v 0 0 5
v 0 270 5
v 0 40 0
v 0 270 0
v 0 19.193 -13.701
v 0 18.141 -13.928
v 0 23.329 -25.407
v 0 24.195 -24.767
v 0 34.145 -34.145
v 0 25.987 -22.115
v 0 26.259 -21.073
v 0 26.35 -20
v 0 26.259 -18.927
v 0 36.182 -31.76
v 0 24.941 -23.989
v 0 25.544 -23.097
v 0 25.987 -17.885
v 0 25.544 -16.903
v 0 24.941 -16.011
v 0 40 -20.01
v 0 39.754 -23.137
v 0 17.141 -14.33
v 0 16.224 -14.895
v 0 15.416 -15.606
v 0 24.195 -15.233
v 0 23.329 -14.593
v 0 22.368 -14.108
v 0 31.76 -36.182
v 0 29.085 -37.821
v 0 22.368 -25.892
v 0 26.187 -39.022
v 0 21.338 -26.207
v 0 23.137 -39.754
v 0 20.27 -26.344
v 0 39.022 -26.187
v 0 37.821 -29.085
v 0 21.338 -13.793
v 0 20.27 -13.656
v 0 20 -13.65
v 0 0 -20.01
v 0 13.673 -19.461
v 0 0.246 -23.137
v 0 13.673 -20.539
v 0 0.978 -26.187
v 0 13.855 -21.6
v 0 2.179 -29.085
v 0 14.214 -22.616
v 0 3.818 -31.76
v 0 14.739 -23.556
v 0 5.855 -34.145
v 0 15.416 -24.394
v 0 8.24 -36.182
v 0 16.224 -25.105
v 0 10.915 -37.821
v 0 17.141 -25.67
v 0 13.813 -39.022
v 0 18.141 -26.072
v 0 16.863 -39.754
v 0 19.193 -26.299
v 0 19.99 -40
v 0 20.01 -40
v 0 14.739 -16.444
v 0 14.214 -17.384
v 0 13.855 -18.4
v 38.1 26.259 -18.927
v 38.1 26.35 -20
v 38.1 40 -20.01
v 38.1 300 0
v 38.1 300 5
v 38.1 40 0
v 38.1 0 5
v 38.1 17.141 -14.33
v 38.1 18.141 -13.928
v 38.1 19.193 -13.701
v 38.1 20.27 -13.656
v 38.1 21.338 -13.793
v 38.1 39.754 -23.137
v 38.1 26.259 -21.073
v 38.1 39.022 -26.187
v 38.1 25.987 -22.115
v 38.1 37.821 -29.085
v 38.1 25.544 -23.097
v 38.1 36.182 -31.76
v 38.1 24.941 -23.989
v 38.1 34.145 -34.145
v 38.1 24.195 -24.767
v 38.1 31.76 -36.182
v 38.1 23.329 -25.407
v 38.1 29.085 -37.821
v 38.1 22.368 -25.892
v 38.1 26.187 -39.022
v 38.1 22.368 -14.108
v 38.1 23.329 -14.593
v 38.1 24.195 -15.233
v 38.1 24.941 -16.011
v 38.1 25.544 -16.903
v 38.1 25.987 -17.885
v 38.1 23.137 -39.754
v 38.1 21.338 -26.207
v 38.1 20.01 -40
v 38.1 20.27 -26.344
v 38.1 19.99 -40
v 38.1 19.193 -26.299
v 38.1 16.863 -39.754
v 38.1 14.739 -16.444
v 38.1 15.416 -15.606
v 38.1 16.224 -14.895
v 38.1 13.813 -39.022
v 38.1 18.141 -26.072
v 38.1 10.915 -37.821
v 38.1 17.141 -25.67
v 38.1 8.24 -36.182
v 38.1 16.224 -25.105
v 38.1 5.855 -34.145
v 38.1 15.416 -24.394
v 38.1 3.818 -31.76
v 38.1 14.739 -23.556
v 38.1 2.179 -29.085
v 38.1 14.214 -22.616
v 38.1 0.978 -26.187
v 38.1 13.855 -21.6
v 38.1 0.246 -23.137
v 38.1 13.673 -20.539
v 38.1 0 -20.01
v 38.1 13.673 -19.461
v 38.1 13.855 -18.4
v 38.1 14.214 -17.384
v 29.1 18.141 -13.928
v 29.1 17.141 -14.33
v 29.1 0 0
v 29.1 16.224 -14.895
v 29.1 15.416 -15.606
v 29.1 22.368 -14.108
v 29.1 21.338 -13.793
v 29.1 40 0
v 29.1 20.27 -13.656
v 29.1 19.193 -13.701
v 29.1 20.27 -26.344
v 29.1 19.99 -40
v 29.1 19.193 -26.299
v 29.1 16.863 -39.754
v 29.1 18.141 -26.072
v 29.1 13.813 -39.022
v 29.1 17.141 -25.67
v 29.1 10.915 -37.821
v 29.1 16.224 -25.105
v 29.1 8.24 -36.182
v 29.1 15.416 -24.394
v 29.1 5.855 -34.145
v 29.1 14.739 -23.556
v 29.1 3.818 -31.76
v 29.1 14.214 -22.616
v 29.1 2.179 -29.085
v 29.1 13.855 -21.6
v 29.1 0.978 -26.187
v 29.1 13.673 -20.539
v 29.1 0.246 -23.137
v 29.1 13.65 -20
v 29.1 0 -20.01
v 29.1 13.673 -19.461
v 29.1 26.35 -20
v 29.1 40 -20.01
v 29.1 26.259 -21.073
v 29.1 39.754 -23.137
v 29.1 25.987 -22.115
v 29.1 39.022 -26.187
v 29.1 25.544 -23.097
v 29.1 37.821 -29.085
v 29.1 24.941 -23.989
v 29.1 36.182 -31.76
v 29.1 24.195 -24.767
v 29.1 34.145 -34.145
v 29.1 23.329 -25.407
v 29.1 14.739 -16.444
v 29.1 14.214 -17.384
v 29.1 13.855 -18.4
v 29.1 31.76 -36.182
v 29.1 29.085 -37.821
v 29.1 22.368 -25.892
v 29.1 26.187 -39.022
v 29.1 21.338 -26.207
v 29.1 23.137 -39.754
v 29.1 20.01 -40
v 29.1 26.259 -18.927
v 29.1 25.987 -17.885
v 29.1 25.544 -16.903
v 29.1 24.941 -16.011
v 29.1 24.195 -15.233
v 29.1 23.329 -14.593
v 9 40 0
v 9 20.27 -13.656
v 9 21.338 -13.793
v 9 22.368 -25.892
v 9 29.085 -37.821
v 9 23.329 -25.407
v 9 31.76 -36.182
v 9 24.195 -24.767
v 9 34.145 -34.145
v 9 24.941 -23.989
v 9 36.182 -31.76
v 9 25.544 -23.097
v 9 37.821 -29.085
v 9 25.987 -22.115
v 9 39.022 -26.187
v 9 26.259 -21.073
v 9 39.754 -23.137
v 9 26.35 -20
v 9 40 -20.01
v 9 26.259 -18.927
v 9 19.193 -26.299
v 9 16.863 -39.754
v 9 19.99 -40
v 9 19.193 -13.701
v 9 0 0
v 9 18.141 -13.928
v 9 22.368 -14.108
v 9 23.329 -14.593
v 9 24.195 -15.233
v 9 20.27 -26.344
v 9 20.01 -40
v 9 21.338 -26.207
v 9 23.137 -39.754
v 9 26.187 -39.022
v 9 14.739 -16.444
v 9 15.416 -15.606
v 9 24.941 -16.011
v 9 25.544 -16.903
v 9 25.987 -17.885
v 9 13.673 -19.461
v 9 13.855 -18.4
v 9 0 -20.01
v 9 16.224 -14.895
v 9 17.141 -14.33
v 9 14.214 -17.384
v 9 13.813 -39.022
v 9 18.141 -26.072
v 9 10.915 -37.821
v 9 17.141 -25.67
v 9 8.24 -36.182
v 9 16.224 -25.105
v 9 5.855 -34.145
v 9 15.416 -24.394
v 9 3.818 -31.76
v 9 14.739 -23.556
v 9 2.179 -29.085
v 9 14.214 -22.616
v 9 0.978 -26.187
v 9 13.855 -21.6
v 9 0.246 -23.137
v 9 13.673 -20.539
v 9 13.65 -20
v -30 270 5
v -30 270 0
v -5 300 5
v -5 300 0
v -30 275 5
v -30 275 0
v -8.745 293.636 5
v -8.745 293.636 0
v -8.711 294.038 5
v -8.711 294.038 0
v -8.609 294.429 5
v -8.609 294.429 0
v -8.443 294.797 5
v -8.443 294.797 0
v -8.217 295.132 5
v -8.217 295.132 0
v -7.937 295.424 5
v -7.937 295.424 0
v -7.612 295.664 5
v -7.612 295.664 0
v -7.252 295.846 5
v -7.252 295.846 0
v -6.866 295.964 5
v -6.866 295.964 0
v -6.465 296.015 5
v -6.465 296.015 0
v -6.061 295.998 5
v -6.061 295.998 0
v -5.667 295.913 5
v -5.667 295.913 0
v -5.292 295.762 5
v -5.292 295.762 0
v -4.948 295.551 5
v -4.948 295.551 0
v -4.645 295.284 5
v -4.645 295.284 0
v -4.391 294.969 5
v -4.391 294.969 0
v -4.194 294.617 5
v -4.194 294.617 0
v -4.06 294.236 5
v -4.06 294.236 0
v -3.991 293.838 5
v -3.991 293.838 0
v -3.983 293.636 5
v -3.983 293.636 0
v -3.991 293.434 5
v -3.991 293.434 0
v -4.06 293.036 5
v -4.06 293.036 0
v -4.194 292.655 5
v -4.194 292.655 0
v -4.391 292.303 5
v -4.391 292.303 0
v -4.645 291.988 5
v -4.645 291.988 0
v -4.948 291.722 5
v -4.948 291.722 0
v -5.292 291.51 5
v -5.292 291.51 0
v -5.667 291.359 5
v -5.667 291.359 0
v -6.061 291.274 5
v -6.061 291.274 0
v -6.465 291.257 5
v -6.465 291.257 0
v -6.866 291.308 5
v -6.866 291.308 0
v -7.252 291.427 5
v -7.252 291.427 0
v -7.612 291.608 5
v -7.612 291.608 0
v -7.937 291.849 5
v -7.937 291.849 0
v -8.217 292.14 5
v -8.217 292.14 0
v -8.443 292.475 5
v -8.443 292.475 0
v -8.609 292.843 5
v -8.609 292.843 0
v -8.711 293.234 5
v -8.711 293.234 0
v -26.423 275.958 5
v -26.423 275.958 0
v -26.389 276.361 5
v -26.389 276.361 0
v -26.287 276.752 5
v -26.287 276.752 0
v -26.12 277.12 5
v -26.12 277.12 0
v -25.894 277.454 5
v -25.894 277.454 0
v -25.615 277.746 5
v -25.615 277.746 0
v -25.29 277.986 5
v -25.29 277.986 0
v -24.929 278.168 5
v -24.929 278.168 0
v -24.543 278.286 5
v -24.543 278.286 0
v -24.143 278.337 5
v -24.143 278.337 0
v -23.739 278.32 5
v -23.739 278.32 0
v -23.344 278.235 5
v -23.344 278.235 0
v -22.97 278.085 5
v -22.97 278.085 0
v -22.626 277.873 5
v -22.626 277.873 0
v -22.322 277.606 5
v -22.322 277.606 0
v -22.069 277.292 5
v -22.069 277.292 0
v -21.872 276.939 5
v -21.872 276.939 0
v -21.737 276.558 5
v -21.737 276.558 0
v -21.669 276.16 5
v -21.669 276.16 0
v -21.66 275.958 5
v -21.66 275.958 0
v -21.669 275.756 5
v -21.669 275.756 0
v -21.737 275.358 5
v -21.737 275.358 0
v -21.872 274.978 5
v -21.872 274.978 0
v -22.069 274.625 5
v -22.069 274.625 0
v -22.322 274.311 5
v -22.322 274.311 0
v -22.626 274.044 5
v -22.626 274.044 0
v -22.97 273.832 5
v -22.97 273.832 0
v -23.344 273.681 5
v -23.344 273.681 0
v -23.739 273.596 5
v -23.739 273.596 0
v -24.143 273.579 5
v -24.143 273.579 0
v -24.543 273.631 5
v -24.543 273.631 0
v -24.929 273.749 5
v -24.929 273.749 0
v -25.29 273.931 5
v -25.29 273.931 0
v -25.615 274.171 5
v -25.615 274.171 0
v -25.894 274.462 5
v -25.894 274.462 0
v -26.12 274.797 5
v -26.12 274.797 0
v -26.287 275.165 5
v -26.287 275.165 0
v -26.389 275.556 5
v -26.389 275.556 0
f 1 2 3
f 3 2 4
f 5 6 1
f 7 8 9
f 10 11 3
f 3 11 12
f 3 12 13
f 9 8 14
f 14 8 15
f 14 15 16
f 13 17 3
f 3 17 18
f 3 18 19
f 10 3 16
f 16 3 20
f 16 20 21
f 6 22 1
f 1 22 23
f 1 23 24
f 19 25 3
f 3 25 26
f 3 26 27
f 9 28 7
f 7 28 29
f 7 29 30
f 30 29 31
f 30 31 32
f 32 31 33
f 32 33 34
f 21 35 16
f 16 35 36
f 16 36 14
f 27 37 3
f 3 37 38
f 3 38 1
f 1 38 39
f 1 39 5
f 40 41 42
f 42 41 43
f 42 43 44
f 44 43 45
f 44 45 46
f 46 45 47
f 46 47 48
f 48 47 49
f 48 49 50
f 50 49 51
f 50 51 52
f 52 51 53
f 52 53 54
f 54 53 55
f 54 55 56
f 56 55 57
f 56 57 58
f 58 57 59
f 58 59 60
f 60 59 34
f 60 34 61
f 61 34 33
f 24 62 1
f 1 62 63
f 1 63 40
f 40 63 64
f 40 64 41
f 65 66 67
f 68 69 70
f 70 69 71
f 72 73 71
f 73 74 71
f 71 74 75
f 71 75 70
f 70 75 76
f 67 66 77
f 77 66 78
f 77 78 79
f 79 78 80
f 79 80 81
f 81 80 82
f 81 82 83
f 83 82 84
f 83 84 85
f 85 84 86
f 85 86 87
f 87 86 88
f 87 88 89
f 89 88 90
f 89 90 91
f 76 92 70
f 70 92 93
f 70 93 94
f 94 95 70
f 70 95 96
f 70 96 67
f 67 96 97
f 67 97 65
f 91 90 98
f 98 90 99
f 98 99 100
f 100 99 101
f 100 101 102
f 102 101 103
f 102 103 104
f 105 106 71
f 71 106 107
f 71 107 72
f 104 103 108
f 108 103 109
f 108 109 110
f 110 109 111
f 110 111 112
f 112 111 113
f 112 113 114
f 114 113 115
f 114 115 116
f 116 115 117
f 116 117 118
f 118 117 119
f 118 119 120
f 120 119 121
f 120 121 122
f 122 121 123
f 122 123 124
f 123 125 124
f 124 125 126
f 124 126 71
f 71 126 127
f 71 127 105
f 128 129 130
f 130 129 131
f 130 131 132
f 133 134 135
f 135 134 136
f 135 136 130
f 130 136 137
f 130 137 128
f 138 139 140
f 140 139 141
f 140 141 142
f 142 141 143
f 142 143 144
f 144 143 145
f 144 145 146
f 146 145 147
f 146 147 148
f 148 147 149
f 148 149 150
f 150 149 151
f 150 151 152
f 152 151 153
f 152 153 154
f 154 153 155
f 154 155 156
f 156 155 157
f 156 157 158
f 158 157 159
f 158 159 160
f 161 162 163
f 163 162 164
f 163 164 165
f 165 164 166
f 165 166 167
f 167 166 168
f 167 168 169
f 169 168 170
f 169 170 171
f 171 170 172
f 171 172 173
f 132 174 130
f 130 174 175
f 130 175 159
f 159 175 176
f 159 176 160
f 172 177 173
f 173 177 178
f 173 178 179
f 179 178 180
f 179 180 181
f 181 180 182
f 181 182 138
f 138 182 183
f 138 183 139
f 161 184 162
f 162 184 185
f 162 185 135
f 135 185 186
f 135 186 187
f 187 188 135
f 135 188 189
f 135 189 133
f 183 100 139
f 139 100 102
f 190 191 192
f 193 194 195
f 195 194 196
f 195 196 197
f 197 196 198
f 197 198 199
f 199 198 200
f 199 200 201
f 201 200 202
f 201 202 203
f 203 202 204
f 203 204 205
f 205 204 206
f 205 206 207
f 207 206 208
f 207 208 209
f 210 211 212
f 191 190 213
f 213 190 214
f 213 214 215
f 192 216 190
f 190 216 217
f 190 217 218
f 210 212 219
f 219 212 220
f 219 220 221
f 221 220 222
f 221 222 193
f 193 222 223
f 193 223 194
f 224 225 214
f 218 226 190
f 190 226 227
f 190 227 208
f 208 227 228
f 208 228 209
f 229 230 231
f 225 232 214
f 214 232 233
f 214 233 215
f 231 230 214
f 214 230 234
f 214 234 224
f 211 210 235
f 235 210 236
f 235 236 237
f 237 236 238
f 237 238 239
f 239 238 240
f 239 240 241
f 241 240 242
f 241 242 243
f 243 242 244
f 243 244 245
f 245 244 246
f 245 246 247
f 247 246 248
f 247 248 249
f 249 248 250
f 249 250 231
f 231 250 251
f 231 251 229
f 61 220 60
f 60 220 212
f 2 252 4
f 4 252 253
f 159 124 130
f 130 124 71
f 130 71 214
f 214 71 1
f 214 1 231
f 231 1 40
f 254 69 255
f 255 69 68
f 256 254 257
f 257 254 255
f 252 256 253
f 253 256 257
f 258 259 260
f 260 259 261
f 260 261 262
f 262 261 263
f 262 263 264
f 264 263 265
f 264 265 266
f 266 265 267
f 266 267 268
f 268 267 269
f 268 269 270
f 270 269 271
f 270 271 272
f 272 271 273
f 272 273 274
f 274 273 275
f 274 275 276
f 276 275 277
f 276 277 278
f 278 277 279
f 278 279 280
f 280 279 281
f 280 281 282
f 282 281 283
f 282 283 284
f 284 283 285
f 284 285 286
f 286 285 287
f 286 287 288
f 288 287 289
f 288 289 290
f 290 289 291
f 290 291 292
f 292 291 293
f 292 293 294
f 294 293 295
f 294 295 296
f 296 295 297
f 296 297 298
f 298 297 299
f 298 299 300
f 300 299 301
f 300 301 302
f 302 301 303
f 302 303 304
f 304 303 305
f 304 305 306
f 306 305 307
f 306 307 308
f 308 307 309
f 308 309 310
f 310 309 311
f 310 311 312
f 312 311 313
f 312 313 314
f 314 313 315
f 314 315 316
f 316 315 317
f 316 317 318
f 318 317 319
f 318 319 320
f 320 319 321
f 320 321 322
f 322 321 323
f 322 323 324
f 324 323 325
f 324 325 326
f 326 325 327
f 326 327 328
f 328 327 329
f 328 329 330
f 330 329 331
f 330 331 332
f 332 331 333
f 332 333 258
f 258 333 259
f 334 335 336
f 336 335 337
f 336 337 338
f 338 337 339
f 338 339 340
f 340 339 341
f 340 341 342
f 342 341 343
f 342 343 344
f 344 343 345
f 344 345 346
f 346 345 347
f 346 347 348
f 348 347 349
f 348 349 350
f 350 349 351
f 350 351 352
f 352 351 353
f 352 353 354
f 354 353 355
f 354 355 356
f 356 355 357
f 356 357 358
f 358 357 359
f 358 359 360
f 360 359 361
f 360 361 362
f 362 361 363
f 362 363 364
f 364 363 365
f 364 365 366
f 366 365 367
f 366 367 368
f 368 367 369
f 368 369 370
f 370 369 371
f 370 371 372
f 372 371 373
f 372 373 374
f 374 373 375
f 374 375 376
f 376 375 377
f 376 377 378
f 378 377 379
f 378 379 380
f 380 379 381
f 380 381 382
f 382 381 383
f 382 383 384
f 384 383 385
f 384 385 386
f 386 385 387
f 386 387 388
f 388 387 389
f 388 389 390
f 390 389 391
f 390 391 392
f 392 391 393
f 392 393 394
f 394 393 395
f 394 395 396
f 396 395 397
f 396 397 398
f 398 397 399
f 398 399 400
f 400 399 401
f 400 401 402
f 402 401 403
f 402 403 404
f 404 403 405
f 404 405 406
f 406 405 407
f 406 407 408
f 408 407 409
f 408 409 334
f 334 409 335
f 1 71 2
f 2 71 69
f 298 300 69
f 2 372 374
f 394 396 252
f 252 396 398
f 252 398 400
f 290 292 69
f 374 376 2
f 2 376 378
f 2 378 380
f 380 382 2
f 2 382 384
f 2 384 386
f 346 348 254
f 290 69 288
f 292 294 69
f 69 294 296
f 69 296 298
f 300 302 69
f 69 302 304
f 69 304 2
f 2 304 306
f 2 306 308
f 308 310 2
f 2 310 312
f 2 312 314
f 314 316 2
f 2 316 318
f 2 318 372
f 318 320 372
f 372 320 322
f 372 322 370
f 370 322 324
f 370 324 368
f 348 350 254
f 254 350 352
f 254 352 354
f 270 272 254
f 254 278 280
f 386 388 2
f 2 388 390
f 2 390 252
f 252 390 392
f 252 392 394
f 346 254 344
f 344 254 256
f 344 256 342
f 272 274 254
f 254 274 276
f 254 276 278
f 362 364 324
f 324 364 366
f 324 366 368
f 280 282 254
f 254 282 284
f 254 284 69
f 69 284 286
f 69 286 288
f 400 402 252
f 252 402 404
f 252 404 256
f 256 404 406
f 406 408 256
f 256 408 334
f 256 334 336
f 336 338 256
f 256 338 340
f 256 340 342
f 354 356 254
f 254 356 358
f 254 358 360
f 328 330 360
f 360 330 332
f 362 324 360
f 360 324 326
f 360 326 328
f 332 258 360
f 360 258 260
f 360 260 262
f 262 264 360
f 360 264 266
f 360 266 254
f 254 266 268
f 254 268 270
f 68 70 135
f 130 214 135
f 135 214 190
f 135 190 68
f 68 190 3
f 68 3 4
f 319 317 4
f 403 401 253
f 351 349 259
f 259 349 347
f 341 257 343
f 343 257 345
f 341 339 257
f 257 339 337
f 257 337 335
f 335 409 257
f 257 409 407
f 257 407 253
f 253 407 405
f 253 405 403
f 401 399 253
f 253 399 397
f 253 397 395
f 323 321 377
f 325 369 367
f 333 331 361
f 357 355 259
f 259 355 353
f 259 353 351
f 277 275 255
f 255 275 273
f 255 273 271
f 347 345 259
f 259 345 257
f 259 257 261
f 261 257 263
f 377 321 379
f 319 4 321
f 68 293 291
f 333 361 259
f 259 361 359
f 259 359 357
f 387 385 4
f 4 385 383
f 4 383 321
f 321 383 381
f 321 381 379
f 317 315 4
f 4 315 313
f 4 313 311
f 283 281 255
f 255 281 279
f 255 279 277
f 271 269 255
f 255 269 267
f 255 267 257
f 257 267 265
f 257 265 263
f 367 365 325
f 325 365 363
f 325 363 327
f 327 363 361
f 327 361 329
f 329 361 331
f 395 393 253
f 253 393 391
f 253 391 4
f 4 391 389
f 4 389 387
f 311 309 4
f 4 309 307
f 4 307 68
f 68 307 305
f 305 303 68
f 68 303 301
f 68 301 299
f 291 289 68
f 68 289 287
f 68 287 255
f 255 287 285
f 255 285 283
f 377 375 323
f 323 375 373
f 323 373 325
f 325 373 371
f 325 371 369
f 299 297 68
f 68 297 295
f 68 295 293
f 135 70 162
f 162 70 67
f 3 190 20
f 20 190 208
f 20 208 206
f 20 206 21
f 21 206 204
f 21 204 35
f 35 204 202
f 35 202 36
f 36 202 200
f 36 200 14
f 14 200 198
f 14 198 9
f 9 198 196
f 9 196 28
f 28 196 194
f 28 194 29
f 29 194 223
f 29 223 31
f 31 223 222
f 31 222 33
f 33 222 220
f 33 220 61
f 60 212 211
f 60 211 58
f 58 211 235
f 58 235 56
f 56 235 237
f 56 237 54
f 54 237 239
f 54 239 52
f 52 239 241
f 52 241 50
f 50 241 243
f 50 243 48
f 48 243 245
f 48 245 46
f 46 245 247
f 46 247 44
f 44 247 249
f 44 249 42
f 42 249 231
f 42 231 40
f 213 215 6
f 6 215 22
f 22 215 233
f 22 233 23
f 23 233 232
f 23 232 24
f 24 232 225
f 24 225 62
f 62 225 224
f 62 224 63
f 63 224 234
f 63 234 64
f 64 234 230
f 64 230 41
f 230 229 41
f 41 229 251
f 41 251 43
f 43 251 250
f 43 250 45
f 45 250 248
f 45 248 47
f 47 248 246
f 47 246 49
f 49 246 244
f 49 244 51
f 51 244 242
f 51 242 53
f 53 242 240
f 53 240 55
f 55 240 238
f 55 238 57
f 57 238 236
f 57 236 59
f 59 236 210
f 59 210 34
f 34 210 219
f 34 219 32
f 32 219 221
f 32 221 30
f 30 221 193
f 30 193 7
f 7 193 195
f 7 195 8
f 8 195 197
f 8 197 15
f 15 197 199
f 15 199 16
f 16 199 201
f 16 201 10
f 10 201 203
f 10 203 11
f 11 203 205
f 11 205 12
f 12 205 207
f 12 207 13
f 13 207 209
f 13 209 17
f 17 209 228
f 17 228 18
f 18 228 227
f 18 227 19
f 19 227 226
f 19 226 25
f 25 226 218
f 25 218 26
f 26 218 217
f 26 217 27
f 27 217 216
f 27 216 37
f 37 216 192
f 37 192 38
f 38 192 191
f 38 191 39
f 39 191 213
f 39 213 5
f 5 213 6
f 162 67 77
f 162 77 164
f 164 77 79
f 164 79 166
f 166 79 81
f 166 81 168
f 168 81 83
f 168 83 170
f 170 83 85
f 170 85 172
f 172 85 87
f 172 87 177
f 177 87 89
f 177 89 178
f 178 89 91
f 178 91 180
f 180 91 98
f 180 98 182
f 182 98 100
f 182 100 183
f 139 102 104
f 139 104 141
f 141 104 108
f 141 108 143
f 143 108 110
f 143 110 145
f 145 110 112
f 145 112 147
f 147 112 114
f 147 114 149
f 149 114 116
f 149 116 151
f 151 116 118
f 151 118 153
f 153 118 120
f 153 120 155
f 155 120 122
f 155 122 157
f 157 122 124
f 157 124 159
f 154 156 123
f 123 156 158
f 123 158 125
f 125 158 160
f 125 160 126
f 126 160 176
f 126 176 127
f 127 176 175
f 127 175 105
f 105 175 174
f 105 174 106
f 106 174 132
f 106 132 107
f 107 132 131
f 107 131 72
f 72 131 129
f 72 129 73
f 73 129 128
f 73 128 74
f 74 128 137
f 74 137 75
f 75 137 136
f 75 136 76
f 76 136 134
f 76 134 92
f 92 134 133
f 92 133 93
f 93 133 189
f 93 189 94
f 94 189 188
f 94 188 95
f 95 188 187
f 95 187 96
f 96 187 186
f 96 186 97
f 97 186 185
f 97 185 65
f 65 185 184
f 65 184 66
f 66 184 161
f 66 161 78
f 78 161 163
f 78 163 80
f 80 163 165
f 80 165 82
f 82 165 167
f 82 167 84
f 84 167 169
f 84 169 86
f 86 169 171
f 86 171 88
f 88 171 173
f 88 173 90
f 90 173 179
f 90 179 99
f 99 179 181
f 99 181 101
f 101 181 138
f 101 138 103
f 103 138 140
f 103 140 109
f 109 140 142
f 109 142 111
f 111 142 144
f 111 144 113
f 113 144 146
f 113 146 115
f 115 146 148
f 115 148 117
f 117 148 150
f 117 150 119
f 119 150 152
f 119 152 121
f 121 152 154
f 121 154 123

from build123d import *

# Parameters (mm, degrees)
SKETCH1_W           = 38.1
SKETCH1_H           = 300
BOSS_EXTRUDE1_DEPTH = 5
SKETCH4_W           = 9
SKETCH4_H           = 40
BOSS_EXTRUDE3_DEPTH = 40
CUT_EXTRUDE2_DEPTH  = 40


with BuildPart() as part:
    # Sketch1 → Boss-Extrude1 (new body)
    with BuildSketch(Plane.XY):
        with BuildLine():
            Line((-30, 275), (-30, 270))
            Line((-30, 270), (-25.725428583, 274.274571417))
            ThreePointArc((-25.725428583, 274.274571417), (-25.725428583, 277.642167462), (-22.357832538, 277.642167462))
            Line((-22.357832538, 277.642167462), (-8.047759053, 291.952240947))
            ThreePointArc((-8.047759053, 291.952240947), (-8.047759053, 295.319836992), (-4.680163008, 295.319836992))
            Line((-4.680163008, 295.319836992), (0, 300))
            Line((0, 300), (-5, 300))
            Line((-5, 300), (-30, 275))
        make_face()
        with BuildLine():
            Line((-25.725428583, 274.274571417), (-30, 270))
            Line((-30, 270), (0, 270))
            Line((0, 270), (0, 300))
            Line((0, 300), (-4.680163008, 295.319836992))
            ThreePointArc((-4.680163008, 295.319836992), (-4.163972894, 294.547303893), (-3.982711031, 293.636038969))
            ThreePointArc((-3.982711031, 293.636038969), (-5.452696107, 291.436050833), (-8.047759053, 291.952240947))
            Line((-8.047759053, 291.952240947), (-22.357832538, 277.642167462))
            ThreePointArc((-22.357832538, 277.642167462), (-21.841642424, 276.869634363), (-21.66038056, 275.95836944))
            ThreePointArc((-21.66038056, 275.95836944), (-23.130365637, 273.758381303), (-25.725428583, 274.274571417))
        make_face()
        with Locations((19.05, 150)):
            Rectangle(SKETCH1_W, SKETCH1_H)
    extrude(amount=BOSS_EXTRUDE1_DEPTH)

    # Sketch4 → Boss-Extrude3 (add)
    with BuildSketch(Plane(origin=(0, 0, 0), x_dir=(-1, 0, 0), z_dir=(0, 0, -1))):
        with Locations((-33.6, 20)):
            Rectangle(SKETCH4_W, SKETCH4_H)
        with Locations((-4.5, 20)):
            Rectangle(SKETCH4_W, SKETCH4_H)
    extrude(amount=BOSS_EXTRUDE3_DEPTH)

    # Sketch5 → Cut-Extrude2 (cut)
    with BuildSketch(Plane(origin=(38.1, 0, 0), x_dir=(0, 0, -1), z_dir=(1, 0, 0))):
        with BuildLine():
            Line((40, 20.01), (40, 40))
            Line((40, 40), (34.145064556, 34.145064556))
            ThreePointArc((34.145064556, 34.145064556), (38.478351855, 27.659841813), (40, 20.01))
        make_face()
        with BuildLine():
            Line((34.145064556, 34.145064556), (40, 40))
            Line((40, 40), (20.01, 40))
            ThreePointArc((20.01, 40), (27.659841813, 38.478351855), (34.145064556, 34.145064556))
        make_face()
        with BuildLine():
            ThreePointArc((26.35, 20), (25.866635031, 22.430039796), (24.490128061, 24.490128061))
            Line((24.490128061, 24.490128061), (15.509871939, 15.509871939))
            ThreePointArc((15.509871939, 15.509871939), (22.430039796, 14.133364969), (26.35, 20))
        make_face()
        with BuildLine():
            Line((15.509871939, 15.509871939), (24.490128061, 24.490128061))
            ThreePointArc((24.490128061, 24.490128061), (15.509871939, 24.490128061), (15.509871939, 15.509871939))
        make_face()
        with BuildLine():
            Line((40, 0), (40, 19.99))
            ThreePointArc((40, 19.99), (34.145064556, 5.854935444), (20.01, 0))
            Line((20.01, 0), (40, 0))
        make_face()
    extrude(amount=-CUT_EXTRUDE2_DEPTH, mode=Mode.SUBTRACT)


solid = part.part
